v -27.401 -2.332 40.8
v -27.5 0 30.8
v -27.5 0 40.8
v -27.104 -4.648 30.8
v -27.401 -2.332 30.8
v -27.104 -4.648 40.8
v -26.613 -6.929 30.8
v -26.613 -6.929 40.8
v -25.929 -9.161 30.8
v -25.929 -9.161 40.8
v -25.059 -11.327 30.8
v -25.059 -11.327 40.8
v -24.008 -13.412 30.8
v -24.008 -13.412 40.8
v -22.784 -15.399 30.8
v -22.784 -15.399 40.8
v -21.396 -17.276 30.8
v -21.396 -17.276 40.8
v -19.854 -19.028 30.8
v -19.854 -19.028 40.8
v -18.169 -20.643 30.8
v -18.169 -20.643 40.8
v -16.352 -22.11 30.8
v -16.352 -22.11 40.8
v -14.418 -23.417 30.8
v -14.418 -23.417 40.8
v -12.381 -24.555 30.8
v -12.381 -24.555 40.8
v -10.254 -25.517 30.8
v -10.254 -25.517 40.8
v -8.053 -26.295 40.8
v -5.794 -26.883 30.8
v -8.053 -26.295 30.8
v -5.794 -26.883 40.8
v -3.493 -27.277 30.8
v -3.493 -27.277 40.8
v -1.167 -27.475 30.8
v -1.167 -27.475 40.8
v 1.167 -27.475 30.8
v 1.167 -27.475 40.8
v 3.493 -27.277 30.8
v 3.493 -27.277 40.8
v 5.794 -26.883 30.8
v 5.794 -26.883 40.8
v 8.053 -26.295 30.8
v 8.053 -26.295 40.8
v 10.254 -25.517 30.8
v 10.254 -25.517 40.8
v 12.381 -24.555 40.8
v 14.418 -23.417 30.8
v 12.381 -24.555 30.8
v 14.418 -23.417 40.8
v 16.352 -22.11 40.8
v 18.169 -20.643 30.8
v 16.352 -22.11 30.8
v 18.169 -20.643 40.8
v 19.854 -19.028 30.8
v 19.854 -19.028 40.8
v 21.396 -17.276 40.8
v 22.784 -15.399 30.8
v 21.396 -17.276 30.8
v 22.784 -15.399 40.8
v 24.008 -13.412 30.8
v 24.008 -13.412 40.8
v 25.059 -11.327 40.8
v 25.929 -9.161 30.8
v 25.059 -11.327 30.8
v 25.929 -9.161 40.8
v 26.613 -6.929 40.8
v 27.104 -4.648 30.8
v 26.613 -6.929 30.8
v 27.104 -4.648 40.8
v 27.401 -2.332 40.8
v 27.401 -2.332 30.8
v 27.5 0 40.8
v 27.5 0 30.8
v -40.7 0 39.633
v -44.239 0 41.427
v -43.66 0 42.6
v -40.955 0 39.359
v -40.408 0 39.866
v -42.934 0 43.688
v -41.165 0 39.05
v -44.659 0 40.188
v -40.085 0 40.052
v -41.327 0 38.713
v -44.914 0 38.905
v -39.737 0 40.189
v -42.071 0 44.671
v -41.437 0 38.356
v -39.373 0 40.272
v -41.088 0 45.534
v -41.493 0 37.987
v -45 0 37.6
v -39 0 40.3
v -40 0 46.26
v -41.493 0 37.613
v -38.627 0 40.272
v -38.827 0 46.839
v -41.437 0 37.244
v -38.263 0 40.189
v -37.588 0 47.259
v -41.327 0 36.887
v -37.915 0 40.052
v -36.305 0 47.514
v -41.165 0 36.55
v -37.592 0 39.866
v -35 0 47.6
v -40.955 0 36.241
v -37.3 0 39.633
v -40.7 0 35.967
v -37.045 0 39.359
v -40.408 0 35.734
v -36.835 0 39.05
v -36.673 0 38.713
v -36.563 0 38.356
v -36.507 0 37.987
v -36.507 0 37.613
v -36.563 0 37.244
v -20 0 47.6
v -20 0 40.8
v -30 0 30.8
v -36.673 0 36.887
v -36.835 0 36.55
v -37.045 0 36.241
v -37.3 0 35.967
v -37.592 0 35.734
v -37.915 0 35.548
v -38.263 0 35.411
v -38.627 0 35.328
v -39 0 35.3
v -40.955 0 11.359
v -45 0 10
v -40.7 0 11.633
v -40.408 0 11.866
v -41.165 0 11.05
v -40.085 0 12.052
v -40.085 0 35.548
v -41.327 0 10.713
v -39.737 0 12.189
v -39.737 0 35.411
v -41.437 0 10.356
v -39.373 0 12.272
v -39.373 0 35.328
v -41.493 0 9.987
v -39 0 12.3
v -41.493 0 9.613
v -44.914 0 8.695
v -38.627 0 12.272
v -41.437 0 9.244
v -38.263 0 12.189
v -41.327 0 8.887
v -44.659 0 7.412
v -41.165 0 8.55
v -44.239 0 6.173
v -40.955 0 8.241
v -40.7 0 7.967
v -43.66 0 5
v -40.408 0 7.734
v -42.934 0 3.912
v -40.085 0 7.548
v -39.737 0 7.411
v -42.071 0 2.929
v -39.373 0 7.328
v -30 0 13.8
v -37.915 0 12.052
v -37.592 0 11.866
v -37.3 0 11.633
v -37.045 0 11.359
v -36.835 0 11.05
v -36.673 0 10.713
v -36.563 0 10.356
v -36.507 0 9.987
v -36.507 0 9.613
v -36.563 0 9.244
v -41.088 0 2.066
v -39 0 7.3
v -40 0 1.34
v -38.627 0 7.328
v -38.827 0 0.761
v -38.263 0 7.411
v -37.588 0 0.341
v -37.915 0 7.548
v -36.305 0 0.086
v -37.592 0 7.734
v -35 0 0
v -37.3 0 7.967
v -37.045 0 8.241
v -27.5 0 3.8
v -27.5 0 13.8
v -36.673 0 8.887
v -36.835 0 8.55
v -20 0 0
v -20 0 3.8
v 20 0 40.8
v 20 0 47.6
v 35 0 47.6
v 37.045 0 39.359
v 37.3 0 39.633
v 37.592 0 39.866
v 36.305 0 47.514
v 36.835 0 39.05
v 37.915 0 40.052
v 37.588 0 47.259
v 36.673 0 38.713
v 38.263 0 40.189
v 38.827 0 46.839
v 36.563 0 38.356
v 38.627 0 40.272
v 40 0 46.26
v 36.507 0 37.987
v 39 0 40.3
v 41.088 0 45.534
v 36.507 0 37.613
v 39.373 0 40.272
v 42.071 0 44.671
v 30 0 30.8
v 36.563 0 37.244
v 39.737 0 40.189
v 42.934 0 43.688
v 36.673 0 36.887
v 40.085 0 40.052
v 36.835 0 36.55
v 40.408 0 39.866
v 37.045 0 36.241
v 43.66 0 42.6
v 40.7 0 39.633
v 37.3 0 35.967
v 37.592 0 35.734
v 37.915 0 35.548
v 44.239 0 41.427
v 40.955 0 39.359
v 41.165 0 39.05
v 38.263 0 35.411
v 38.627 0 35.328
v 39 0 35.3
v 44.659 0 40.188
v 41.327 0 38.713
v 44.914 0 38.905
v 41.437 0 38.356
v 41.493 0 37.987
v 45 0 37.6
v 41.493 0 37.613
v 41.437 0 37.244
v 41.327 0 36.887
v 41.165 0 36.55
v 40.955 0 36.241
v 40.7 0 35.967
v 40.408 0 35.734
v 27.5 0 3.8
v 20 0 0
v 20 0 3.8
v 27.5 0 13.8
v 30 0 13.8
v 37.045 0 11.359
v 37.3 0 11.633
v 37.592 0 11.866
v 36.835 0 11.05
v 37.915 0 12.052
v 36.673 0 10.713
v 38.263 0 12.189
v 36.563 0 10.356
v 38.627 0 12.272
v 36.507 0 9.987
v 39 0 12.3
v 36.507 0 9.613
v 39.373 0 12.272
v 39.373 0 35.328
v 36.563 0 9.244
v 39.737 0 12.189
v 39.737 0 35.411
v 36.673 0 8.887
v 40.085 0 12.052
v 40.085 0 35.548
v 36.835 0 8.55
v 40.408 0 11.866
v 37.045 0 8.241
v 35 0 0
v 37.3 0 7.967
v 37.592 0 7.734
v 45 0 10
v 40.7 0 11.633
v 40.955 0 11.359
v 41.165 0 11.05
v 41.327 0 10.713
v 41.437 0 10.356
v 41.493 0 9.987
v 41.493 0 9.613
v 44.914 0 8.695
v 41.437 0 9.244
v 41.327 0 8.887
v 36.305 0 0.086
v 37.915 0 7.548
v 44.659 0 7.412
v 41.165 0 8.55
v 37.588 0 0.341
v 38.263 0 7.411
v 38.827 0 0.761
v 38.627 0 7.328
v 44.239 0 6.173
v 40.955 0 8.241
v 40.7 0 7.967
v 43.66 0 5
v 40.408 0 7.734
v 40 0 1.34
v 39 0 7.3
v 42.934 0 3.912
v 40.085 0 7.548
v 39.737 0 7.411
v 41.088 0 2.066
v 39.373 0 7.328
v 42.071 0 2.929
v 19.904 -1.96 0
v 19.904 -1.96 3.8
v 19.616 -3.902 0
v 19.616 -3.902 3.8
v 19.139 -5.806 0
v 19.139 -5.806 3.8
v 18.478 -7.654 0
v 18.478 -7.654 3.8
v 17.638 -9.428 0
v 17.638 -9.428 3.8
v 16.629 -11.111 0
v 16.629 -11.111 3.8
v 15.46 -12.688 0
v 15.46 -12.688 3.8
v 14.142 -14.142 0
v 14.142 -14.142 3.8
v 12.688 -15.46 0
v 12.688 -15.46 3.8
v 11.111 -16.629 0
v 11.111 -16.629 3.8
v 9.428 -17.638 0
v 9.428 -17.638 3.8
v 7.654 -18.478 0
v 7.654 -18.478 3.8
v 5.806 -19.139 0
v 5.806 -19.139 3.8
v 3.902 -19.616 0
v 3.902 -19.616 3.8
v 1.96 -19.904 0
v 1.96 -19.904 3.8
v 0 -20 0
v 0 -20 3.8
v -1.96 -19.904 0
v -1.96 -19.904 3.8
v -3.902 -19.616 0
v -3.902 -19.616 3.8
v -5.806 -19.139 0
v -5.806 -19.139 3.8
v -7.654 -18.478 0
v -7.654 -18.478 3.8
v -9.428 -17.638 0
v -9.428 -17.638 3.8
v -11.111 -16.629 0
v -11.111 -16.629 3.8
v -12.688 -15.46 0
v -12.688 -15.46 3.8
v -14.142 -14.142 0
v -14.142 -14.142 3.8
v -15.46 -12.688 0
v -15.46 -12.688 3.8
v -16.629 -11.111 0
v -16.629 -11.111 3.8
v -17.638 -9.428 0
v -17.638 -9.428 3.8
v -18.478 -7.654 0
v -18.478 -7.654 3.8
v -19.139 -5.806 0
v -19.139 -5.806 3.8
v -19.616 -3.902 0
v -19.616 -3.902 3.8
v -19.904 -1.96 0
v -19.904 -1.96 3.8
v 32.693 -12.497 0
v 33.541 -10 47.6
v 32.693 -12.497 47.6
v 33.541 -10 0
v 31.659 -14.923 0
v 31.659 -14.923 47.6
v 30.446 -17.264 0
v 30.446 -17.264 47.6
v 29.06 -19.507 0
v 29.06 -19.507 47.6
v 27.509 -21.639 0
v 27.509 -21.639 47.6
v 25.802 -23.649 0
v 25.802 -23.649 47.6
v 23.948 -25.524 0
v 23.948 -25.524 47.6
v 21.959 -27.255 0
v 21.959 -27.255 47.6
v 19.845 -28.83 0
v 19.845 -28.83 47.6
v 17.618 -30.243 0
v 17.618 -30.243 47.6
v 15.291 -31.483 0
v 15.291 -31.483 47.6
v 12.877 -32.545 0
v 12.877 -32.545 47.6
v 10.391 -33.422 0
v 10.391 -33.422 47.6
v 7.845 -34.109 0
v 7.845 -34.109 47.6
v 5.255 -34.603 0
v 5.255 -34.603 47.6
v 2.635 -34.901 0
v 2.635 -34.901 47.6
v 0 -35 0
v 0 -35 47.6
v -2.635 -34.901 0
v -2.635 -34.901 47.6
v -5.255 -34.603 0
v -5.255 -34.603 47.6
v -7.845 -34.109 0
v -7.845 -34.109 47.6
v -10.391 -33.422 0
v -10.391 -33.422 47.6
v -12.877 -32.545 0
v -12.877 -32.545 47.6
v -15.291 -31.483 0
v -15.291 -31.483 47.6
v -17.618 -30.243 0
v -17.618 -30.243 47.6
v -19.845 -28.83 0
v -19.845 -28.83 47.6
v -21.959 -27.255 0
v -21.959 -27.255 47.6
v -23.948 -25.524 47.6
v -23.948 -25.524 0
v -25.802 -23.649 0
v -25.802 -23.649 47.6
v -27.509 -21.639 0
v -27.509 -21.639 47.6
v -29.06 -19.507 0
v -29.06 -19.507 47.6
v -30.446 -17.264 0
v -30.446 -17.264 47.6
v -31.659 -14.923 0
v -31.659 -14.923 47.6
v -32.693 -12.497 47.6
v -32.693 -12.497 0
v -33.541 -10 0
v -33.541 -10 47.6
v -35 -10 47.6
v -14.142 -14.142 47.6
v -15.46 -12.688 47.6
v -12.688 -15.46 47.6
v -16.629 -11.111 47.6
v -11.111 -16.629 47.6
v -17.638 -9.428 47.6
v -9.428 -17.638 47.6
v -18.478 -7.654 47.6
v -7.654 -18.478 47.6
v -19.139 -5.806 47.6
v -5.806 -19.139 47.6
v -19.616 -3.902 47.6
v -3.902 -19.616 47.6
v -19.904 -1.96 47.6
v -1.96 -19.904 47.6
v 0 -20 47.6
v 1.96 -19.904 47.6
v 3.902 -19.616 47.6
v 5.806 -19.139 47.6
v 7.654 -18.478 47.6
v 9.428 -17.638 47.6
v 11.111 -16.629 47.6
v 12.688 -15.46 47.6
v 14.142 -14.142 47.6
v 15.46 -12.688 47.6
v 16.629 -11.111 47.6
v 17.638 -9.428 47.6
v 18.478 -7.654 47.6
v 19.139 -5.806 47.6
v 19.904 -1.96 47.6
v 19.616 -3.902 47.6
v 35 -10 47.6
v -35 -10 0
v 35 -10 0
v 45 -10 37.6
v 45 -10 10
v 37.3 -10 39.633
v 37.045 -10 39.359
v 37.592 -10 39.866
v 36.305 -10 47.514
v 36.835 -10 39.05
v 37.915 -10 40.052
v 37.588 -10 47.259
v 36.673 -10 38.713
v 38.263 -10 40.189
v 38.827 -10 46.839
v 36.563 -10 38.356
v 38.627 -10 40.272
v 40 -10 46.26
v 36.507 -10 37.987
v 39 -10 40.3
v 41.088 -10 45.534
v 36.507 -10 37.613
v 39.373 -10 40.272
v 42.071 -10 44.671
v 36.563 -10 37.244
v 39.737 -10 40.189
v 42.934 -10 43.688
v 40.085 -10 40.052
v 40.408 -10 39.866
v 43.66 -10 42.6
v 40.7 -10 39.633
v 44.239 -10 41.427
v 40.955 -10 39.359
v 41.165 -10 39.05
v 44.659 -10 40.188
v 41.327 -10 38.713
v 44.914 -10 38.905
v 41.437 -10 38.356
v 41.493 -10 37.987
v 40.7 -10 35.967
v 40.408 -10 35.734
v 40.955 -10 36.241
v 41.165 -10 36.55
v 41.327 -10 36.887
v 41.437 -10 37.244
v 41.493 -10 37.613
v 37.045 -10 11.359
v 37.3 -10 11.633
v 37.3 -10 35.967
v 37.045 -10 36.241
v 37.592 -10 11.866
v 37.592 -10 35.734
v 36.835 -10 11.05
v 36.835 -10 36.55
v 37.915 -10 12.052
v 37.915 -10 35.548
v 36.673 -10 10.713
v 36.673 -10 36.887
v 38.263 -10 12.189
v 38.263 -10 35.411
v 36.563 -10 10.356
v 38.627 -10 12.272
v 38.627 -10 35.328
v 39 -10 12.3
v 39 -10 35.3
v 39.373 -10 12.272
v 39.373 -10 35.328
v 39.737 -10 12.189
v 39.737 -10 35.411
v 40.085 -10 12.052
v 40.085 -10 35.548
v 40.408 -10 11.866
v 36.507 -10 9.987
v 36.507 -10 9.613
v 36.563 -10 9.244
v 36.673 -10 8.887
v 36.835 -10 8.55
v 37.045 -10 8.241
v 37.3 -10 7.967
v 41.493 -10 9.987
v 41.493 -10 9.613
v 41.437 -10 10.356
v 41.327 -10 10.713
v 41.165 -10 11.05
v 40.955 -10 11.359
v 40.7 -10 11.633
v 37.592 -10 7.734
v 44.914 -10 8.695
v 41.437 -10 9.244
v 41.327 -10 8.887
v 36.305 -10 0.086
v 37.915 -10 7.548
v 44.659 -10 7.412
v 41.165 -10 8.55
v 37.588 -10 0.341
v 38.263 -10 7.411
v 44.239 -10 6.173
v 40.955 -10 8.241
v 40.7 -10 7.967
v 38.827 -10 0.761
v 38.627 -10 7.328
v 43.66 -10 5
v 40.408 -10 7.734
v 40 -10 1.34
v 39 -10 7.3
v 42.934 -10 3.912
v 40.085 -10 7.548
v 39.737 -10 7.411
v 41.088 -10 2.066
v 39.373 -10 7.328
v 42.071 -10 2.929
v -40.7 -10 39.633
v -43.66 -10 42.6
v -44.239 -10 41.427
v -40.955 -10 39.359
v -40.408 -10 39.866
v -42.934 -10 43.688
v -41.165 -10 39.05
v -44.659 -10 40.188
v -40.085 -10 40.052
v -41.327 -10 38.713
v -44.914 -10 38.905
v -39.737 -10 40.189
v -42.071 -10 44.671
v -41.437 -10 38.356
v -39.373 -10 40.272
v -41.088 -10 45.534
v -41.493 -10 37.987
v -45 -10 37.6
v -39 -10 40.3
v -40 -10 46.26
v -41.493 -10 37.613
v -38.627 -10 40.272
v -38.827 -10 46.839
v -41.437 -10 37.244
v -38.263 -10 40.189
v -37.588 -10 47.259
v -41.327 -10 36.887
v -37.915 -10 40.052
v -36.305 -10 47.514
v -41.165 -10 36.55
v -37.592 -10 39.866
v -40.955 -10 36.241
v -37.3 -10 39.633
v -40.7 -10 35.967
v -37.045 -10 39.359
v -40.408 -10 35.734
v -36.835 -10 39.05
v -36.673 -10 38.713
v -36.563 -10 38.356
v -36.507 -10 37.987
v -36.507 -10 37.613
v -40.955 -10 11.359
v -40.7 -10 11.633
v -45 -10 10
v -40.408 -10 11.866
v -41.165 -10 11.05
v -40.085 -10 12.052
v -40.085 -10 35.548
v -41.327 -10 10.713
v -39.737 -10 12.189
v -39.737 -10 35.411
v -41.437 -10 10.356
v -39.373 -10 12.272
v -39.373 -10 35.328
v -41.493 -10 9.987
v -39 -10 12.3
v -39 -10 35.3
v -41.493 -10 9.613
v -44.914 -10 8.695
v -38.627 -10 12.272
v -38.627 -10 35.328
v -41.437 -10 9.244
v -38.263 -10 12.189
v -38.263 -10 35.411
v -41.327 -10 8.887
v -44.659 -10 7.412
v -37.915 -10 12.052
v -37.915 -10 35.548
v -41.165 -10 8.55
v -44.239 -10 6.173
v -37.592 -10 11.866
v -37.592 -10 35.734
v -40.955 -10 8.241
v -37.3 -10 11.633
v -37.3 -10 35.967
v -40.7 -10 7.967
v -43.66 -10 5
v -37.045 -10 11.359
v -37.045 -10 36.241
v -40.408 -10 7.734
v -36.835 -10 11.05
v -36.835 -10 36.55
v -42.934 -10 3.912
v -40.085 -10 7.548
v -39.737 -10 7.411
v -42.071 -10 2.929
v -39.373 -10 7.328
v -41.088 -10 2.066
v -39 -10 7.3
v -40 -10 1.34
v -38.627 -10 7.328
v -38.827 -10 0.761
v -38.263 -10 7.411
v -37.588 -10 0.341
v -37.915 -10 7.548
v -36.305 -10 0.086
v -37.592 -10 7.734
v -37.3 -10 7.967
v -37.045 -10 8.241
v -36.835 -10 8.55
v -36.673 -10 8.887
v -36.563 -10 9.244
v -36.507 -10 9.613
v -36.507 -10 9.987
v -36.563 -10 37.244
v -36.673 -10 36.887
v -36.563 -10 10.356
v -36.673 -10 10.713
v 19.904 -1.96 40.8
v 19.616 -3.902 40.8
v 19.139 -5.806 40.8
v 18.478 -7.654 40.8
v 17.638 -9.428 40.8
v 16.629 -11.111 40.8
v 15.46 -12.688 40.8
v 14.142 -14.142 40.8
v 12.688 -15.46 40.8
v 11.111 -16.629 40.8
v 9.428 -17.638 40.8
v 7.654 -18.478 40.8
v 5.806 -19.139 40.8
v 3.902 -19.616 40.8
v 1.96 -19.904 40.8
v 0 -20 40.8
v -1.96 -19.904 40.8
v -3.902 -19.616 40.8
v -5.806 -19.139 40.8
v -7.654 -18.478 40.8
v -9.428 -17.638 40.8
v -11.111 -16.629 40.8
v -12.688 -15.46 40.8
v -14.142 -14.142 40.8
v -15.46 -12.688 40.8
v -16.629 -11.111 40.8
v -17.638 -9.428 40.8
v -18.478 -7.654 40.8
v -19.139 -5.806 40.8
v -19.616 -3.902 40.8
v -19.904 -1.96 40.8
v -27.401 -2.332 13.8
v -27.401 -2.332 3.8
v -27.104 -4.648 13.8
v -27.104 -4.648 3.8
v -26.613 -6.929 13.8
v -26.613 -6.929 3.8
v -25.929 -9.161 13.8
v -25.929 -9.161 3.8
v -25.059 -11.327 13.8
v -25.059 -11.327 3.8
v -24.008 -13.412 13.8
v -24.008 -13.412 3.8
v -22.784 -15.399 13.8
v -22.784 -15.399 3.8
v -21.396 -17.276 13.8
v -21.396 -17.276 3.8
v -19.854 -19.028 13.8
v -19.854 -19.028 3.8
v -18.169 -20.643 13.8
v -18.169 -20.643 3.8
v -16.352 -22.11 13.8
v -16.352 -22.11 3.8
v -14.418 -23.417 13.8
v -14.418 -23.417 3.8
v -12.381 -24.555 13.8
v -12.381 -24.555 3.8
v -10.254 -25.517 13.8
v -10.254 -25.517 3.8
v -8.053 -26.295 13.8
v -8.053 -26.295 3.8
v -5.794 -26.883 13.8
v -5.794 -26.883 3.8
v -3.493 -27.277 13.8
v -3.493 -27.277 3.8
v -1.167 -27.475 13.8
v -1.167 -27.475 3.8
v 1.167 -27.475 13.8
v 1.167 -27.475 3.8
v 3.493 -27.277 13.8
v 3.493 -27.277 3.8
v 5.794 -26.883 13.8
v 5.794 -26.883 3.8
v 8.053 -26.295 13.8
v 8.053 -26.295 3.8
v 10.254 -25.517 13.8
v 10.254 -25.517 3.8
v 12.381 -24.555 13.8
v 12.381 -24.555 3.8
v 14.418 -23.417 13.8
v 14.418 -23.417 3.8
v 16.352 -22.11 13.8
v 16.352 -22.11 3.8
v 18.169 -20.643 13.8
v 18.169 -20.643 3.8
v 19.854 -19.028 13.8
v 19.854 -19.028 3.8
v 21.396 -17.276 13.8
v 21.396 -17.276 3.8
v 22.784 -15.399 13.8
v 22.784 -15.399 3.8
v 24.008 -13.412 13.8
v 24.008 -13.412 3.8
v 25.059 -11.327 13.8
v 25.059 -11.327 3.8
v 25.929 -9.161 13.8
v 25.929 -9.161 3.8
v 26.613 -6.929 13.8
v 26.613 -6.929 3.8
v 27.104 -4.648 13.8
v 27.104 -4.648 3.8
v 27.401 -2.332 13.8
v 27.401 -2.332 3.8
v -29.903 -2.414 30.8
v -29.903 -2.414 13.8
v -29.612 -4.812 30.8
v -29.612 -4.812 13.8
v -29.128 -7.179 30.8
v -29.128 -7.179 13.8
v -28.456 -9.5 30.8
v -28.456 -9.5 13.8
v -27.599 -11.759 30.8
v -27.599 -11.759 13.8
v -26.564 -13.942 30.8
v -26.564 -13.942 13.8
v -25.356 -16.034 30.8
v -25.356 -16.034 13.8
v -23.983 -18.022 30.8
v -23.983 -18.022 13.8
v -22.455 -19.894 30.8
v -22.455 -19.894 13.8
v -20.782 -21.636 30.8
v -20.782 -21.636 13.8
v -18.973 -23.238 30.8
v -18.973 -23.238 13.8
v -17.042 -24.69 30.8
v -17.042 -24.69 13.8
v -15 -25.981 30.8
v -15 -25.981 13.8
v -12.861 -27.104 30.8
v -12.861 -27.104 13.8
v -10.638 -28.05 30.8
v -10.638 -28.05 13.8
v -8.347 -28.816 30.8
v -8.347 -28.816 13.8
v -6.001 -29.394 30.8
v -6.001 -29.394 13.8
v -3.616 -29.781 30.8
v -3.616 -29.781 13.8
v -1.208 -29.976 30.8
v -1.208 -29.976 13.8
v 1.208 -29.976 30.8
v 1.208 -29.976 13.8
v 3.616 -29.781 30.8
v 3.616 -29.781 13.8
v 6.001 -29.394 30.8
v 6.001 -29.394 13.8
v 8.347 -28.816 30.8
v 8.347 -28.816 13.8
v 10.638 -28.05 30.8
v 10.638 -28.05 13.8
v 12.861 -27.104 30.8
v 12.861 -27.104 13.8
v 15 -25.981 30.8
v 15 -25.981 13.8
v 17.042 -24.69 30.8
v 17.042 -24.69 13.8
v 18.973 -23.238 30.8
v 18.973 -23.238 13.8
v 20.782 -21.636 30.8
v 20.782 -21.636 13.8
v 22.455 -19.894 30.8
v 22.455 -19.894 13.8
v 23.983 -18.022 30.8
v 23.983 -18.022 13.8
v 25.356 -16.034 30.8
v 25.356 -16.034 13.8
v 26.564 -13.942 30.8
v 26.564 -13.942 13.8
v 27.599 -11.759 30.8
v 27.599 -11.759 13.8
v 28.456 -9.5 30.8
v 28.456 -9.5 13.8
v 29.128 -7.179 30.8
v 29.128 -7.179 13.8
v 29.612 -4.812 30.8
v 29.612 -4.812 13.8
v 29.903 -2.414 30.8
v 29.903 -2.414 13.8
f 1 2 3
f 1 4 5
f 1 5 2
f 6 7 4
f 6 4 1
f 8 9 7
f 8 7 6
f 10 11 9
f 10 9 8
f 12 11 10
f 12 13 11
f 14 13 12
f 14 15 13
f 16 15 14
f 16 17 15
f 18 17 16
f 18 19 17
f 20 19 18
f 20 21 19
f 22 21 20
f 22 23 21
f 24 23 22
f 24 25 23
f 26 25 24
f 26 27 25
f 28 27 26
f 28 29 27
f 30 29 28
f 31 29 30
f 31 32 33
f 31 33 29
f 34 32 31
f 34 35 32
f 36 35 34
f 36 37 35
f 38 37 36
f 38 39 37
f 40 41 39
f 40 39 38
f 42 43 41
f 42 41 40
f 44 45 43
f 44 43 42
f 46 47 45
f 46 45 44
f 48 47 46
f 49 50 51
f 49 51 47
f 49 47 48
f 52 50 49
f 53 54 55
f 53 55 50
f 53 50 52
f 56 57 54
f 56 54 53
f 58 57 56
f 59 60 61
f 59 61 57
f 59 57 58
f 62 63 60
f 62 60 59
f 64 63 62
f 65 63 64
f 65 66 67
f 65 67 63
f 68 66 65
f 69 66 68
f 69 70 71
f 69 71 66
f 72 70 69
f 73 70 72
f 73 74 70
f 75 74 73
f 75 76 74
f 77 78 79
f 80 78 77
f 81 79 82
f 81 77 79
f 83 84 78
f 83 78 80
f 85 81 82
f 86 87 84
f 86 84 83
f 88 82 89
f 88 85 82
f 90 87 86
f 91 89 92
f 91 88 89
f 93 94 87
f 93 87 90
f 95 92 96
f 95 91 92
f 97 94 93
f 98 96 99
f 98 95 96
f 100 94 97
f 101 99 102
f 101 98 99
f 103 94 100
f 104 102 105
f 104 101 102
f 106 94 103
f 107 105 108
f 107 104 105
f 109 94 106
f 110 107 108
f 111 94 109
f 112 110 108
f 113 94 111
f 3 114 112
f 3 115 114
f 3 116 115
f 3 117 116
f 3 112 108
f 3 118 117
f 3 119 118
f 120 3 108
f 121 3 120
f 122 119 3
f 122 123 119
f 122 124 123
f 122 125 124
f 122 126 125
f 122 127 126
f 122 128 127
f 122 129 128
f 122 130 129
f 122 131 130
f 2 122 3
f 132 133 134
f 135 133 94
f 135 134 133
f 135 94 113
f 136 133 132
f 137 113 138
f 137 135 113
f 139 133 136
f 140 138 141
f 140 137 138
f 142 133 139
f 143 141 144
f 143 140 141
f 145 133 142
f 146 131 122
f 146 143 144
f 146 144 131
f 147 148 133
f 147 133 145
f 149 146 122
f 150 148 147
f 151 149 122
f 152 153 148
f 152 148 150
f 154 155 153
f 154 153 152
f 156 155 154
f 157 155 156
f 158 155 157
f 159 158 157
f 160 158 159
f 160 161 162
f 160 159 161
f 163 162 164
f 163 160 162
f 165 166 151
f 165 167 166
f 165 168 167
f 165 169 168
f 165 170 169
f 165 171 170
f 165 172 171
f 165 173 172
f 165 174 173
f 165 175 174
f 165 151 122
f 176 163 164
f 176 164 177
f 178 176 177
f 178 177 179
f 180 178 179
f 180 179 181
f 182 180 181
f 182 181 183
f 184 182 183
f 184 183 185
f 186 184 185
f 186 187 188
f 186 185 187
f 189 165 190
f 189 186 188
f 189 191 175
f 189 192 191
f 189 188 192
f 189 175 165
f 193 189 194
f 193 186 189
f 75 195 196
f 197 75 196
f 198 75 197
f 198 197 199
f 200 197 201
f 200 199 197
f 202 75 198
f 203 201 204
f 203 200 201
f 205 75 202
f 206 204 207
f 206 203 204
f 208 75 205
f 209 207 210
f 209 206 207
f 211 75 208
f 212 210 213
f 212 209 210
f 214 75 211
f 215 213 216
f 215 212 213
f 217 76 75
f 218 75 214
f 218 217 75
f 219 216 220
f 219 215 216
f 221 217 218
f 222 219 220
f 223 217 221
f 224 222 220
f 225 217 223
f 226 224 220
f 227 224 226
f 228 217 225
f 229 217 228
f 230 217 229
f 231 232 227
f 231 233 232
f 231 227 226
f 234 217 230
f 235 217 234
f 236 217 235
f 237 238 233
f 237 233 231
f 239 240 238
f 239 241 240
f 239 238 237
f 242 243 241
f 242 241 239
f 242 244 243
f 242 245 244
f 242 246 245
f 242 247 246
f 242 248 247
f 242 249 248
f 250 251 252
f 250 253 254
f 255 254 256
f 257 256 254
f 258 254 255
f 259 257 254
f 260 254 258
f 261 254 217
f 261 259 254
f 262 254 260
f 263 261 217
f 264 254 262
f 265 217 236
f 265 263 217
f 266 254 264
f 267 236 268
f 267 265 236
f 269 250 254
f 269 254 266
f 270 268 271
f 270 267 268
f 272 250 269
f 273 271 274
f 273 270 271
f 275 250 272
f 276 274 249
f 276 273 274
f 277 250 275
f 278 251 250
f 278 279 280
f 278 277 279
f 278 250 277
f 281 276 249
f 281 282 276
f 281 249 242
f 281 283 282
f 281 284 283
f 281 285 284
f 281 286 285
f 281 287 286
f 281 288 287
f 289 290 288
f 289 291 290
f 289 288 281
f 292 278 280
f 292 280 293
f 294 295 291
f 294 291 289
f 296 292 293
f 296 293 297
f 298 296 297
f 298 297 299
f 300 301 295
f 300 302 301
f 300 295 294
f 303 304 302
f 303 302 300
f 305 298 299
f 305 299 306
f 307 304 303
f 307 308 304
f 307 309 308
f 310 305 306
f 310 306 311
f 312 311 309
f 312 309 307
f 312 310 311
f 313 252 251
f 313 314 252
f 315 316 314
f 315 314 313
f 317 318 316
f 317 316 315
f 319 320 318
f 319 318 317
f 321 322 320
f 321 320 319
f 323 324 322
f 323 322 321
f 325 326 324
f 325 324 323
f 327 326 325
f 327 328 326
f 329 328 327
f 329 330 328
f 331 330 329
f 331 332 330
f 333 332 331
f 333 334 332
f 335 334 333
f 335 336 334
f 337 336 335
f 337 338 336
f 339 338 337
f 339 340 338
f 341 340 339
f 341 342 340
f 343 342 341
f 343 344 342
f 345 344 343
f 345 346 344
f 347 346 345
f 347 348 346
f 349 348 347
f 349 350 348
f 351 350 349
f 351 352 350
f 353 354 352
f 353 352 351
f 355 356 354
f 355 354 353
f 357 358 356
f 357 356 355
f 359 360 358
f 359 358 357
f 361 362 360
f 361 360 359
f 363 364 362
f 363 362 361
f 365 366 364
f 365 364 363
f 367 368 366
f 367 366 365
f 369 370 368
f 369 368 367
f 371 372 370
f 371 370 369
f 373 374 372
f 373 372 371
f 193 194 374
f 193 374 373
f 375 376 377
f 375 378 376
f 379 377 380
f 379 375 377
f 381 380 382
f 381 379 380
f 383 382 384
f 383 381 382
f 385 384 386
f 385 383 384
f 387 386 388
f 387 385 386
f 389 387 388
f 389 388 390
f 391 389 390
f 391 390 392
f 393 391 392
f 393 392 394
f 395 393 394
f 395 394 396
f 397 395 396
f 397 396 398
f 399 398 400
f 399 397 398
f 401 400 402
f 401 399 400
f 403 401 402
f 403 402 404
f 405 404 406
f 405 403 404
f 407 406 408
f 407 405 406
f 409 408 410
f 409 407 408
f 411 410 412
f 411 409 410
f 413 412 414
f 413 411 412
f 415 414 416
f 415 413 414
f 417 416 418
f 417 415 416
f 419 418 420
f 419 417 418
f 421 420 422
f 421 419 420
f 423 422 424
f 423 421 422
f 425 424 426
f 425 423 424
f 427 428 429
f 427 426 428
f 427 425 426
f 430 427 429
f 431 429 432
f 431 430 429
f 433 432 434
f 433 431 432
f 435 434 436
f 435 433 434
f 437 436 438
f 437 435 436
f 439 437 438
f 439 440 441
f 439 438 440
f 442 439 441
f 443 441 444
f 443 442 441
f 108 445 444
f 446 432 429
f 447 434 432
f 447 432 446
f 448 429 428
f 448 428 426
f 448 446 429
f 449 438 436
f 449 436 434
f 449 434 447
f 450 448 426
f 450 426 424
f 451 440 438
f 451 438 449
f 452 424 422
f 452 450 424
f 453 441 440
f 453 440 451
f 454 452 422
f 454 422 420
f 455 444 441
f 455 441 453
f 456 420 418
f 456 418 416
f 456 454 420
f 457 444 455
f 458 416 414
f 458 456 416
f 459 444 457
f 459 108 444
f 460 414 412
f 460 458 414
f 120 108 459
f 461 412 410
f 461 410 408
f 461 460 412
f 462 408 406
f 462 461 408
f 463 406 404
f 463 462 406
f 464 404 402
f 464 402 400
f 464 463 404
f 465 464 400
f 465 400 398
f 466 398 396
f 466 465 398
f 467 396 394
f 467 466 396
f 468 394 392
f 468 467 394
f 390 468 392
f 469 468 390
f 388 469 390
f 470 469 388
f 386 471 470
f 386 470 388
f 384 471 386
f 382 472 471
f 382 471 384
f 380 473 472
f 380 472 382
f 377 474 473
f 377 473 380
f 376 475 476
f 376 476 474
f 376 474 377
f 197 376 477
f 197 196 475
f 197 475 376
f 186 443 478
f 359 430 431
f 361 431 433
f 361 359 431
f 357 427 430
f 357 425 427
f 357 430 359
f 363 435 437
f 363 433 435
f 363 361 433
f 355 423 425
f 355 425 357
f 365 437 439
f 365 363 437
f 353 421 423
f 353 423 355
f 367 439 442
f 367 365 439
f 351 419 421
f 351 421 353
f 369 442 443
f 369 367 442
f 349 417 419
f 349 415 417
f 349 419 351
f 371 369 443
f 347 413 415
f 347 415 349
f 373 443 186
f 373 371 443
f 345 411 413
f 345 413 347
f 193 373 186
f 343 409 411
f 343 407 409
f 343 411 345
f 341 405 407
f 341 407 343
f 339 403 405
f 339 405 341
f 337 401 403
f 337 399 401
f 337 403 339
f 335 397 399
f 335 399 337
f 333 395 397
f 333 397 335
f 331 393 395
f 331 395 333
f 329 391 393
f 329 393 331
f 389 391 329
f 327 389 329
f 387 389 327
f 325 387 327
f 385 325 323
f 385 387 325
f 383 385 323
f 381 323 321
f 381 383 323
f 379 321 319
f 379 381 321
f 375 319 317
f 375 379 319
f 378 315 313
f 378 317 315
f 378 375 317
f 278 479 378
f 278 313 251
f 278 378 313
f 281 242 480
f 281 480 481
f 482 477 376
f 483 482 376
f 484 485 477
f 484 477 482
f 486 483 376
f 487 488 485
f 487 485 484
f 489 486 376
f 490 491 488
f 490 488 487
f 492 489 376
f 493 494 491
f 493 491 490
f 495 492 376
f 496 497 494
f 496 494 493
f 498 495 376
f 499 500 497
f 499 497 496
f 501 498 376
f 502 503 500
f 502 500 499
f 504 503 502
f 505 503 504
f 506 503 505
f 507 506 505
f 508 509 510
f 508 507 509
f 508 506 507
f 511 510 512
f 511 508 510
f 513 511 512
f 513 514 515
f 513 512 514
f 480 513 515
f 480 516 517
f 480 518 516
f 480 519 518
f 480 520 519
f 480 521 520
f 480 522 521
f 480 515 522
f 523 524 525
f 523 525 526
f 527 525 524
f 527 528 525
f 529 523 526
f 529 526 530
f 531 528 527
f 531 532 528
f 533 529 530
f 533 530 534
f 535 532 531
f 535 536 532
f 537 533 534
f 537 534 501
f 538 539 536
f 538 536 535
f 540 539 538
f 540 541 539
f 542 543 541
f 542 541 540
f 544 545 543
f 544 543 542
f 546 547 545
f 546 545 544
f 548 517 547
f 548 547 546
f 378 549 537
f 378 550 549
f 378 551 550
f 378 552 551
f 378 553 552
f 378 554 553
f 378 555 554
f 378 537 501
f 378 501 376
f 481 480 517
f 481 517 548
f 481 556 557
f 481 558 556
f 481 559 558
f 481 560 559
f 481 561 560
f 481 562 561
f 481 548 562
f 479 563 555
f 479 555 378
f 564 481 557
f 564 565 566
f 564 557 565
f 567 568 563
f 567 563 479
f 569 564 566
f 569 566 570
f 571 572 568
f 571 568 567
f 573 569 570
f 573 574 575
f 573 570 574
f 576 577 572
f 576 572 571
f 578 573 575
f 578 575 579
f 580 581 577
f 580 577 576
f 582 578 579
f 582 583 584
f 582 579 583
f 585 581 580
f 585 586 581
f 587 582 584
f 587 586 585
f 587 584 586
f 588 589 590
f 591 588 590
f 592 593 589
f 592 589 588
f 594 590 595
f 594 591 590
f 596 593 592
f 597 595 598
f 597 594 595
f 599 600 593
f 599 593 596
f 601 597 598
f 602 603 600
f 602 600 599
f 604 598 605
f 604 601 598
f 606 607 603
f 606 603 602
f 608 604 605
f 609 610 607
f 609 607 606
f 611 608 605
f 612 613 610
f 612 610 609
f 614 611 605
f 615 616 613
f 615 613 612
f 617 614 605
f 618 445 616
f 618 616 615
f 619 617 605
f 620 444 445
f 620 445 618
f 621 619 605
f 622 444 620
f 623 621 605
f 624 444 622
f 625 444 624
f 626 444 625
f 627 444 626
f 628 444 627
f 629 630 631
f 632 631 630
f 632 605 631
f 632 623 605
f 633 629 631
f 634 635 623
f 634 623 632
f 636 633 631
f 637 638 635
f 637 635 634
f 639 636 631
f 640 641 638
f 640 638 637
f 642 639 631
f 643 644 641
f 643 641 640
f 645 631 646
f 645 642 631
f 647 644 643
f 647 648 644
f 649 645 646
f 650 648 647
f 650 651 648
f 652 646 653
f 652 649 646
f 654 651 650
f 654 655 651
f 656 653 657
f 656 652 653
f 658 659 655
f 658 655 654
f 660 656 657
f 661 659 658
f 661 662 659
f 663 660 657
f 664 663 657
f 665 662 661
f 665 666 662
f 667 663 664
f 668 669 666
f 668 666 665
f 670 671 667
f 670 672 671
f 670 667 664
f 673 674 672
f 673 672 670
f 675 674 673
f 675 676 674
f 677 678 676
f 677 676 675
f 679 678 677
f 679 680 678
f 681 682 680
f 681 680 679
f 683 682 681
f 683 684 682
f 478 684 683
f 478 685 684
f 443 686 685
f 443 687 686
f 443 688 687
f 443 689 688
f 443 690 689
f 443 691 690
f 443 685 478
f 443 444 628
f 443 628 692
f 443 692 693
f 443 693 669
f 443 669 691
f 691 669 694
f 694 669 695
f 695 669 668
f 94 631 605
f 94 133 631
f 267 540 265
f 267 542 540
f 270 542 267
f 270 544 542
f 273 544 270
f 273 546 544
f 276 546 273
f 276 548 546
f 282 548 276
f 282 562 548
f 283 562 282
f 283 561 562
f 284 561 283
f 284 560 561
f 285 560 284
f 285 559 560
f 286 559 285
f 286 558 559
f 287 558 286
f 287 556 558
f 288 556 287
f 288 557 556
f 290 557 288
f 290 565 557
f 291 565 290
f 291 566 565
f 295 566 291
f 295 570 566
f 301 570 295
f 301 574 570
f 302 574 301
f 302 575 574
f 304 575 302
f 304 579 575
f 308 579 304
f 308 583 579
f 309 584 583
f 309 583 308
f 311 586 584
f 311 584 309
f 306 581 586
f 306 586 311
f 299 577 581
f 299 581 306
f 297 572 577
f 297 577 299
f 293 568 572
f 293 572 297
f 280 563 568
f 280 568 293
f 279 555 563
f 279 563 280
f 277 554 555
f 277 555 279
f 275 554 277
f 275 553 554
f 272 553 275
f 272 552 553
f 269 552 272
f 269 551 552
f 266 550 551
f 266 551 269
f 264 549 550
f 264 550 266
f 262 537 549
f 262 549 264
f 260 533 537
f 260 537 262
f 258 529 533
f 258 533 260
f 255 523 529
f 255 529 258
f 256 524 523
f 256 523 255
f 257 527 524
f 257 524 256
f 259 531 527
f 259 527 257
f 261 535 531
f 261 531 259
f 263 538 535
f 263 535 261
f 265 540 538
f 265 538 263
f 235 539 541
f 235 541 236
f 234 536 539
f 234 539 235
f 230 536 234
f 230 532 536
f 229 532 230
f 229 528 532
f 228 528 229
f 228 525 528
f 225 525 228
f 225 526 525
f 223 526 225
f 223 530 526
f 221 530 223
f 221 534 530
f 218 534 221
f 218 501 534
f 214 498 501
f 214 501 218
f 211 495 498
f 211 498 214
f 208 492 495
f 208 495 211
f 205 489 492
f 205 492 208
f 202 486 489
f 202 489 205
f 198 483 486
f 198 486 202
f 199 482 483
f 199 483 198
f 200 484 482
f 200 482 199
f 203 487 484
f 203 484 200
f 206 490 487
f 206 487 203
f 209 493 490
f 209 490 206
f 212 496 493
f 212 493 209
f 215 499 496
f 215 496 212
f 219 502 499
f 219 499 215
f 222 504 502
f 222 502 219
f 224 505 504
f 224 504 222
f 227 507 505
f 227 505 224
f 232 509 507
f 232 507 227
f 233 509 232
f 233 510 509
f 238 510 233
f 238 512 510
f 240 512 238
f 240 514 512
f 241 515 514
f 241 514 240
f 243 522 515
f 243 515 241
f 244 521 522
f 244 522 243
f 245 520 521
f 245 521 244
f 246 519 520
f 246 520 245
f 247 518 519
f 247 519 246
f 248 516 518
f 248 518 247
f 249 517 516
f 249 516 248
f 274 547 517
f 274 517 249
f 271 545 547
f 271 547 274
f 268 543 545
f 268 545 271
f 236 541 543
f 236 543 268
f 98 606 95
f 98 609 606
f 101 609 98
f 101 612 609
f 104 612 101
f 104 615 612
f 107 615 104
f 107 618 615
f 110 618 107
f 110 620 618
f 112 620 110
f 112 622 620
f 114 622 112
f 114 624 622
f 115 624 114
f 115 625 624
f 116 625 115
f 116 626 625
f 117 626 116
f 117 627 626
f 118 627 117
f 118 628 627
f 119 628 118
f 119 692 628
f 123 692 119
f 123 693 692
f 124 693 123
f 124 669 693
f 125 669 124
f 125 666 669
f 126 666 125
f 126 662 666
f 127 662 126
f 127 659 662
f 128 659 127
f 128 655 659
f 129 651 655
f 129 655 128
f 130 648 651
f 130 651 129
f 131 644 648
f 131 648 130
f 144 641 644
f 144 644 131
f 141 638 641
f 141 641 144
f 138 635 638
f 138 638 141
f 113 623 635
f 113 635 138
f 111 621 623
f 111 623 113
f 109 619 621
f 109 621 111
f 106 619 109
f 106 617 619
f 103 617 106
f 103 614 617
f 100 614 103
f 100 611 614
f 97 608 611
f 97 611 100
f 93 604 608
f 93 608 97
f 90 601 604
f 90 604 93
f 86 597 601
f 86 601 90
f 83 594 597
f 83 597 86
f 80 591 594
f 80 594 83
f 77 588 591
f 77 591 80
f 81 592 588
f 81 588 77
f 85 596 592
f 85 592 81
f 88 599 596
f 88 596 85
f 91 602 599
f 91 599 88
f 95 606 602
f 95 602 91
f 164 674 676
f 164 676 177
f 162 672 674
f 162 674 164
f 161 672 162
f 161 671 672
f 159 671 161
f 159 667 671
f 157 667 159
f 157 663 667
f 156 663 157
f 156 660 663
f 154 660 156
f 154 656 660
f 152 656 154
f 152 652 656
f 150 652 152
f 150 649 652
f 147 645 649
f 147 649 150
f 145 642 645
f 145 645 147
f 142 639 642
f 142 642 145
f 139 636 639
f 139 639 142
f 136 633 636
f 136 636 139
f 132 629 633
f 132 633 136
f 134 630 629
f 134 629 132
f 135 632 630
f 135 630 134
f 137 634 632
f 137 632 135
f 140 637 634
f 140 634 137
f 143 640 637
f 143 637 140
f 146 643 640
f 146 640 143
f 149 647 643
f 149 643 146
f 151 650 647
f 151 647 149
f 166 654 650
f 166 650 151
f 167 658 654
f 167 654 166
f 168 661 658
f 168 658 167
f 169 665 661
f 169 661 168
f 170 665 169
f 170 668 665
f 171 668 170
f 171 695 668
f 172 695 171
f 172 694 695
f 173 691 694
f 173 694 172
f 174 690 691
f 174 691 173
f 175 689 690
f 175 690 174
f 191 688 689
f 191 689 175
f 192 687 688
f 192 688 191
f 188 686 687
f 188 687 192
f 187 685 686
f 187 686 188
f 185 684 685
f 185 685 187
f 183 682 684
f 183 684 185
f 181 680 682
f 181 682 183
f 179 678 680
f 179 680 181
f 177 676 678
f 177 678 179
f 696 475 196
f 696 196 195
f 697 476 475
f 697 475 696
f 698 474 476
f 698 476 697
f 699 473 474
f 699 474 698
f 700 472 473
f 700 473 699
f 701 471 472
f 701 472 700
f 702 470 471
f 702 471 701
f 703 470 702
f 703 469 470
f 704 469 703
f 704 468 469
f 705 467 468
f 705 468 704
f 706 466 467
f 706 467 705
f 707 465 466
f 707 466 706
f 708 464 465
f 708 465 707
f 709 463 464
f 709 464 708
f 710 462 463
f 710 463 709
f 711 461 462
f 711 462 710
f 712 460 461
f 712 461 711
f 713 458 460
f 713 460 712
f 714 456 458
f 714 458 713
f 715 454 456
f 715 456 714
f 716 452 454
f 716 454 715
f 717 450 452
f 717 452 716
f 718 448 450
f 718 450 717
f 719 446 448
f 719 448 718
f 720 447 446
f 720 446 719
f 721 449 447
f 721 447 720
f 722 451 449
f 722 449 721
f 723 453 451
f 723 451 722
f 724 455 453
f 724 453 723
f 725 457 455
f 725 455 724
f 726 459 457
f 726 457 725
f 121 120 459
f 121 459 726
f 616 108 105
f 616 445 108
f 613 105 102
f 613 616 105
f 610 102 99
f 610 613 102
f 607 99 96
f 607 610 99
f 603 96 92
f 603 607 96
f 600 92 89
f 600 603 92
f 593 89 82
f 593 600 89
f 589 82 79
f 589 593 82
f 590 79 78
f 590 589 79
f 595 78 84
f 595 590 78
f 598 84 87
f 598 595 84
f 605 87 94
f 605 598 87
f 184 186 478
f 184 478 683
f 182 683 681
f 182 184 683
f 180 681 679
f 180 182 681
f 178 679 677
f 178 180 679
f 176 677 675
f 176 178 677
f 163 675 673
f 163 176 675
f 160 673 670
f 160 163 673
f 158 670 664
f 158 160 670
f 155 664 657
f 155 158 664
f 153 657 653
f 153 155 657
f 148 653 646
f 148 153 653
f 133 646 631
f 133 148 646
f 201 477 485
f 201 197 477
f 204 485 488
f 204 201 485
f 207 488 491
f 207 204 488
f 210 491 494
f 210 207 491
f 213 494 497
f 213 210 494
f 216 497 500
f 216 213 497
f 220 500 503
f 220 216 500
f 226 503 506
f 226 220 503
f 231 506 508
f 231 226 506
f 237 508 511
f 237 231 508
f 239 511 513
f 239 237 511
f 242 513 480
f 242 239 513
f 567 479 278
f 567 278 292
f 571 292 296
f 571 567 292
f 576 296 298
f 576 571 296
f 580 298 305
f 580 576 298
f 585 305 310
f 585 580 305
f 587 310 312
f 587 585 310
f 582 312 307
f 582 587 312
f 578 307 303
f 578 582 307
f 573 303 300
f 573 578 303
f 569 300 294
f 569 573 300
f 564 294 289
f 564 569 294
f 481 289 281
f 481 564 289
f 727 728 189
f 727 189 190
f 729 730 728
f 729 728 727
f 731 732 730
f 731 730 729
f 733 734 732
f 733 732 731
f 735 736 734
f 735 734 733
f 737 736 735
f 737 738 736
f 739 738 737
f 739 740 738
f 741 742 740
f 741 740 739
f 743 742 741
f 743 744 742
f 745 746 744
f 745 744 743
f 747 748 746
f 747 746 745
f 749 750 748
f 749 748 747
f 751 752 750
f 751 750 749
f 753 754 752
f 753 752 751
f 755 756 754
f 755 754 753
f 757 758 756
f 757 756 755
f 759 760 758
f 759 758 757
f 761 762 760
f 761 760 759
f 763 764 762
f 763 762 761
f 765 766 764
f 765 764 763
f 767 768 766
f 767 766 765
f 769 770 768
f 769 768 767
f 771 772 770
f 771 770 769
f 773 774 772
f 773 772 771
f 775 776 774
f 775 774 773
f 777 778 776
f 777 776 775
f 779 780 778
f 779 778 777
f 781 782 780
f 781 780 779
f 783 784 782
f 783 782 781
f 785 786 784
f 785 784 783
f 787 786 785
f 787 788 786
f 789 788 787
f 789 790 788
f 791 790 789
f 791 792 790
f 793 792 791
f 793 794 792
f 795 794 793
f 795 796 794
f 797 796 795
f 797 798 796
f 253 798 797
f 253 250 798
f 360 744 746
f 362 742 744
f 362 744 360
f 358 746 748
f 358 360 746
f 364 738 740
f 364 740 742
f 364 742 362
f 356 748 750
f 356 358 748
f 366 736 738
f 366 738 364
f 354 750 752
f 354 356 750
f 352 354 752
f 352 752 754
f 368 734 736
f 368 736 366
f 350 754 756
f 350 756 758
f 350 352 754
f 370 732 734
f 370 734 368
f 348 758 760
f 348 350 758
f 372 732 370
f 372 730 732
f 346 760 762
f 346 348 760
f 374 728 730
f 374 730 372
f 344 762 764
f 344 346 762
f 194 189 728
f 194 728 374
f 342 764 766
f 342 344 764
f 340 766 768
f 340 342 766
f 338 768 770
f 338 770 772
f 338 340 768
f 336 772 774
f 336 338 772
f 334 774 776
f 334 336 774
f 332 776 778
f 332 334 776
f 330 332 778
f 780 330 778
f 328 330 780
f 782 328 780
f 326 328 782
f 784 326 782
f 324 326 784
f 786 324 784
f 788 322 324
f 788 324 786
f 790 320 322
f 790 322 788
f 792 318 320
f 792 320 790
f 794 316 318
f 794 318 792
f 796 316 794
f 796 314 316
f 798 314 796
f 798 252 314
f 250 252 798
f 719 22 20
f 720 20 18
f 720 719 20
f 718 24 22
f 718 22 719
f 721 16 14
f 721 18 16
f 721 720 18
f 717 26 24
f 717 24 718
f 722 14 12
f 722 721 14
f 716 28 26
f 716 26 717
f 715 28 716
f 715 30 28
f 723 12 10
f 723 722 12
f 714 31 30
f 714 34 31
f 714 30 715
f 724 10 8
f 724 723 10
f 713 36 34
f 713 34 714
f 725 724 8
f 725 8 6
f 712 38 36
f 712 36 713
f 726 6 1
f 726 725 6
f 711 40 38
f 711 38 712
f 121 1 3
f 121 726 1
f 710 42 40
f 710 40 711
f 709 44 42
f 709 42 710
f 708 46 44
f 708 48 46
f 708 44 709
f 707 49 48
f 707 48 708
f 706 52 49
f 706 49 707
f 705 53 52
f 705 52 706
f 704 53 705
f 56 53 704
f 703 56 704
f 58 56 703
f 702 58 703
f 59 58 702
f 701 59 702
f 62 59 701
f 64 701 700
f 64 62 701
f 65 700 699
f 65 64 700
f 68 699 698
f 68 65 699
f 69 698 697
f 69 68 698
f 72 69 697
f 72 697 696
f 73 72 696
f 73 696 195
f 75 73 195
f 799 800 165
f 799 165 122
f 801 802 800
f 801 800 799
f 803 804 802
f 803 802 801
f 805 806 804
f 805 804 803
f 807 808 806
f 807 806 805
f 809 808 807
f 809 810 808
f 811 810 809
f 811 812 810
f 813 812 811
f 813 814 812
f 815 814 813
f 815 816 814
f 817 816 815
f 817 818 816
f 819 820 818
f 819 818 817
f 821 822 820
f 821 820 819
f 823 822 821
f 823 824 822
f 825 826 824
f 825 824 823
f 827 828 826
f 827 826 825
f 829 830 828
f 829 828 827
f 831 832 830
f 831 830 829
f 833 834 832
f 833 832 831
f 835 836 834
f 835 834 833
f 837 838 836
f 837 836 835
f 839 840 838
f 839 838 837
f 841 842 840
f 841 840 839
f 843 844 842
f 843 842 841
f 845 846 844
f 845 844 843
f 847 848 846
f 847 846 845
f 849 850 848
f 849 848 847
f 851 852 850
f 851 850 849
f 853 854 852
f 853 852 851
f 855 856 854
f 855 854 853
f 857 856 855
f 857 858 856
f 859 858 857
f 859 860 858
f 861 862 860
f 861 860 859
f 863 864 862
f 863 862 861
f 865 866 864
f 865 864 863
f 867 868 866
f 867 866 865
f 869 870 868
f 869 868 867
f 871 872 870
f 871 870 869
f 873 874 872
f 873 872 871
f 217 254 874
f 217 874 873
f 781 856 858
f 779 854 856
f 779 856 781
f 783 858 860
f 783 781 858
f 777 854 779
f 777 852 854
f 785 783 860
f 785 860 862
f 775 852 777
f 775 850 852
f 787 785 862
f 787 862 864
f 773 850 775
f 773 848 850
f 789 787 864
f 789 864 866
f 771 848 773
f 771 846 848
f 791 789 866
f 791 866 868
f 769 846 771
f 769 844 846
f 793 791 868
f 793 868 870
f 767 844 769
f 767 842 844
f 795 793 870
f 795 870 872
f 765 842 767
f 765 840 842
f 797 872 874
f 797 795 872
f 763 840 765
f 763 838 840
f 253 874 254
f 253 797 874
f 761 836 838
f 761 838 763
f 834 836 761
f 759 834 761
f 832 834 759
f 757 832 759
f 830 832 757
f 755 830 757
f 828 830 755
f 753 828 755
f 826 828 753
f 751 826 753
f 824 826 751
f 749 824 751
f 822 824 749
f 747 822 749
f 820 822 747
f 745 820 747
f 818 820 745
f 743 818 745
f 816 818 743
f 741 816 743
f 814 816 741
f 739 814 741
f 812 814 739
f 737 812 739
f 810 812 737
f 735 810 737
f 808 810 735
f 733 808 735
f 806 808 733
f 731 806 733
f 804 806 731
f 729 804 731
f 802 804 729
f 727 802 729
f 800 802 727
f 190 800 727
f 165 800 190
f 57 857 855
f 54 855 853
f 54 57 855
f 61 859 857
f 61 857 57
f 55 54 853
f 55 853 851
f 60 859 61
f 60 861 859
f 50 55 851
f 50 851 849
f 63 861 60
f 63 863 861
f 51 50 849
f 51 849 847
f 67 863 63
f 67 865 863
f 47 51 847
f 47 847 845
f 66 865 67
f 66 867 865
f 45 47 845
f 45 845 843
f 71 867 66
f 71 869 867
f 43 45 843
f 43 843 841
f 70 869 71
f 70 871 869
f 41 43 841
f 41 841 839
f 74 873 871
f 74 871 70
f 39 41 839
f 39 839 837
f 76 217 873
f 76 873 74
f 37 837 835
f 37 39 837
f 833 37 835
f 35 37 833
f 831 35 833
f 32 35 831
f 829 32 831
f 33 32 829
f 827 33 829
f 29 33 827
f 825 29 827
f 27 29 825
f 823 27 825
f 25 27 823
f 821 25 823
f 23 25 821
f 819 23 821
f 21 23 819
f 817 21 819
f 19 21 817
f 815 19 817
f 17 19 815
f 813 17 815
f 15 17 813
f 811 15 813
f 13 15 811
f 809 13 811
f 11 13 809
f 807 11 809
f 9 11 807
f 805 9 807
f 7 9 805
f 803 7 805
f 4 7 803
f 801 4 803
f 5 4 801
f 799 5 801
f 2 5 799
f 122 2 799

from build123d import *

# Parameters (mm, degrees)
CROQUIS1_R              = 35
SALIENTE_EXTRUIR1_DEPTH = 47.6
CROQUIS2_W              = 81.100238634
CROQUIS2_H              = 55.229590233
CORTAR_EXTRUIR1_DEPTH   = 69.671391423
CROQUIS3_W              = 90
CROQUIS3_H              = 10
SALIENTE_EXTRUIR2_DEPTH = 47.6
CROQUIS4_R              = 2.5
CORTAR_EXTRUIR2_DEPTH   = 75.268162762
CROQUIS5_R              = 20
CORTAR_EXTRUIR3_DEPTH   = 75.268162762
REDONDEO1_R             = 10
CORTAR_EXTRUIR4_START   = -6.8
CROQUIS6_R              = 27.5
CORTAR_EXTRUIR4_DEPTH   = 37
CORTAR_EXTRUIR5_START   = 10
CROQUIS7_R              = 30
CORTAR_EXTRUIR5_DEPTH   = 17


with BuildPart() as part:
    # Croquis1 → Saliente-Extruir1 (new body)
    with BuildSketch(Plane.XY):
        Circle(CROQUIS1_R)
    extrude(amount=SALIENTE_EXTRUIR1_DEPTH)

    # Croquis2 → Cortar-Extruir1 (cut, through all)
    with BuildSketch(Plane.XY.offset(47.6)):
        with Locations((5.550119317, 27.614795117)):
            Rectangle(CROQUIS2_W, CROQUIS2_H)
    extrude(amount=-CORTAR_EXTRUIR1_DEPTH, mode=Mode.SUBTRACT)

    # Croquis3 → Saliente-Extruir2 (add)
    with BuildSketch(Plane.XY.offset(47.6)):
        with Locations((0, -5)):
            Rectangle(CROQUIS3_W, CROQUIS3_H)
    extrude(amount=-SALIENTE_EXTRUIR2_DEPTH)

    # Croquis4 → Cortar-Extruir2 (cut, through all)
    with BuildSketch(Plane(origin=(0, 0, 0), x_dir=(1, 0, 0), z_dir=(0, 1, 0))):
        with Locations(Location((39, -9.8, 0), (0, 0, 270))):
            Circle(CROQUIS4_R)
        with Locations(Location((39, -37.8, 0), (0, 0, 90))):
            Circle(CROQUIS4_R)
        with Locations(Location((-39, -37.8, 0), (0, 0, 270))):
            Circle(CROQUIS4_R)
        with Locations(Location((-39, -9.8, 0), (0, 0, 90))):
            Circle(CROQUIS4_R)
    extrude(amount=-CORTAR_EXTRUIR2_DEPTH, mode=Mode.SUBTRACT)

    # Croquis5 → Cortar-Extruir3 (cut, through all)
    with BuildSketch(Plane(origin=(0, 0, 0), x_dir=(-1, 0, 0), z_dir=(0, 0, -1))):
        Circle(CROQUIS5_R)
    extrude(amount=-CORTAR_EXTRUIR3_DEPTH, mode=Mode.SUBTRACT)

    # Redondeo1
    redondeo1_edges = [part.edges().sort_by_distance(p)[0] for p in [
        (-45, -5, 47.6),
        (45, -5, 47.6),
        (-45, -5, 0),
        (45, -5, 0),
    ]]
    fillet(redondeo1_edges, radius=REDONDEO1_R)

    # Croquis6 → Cortar-Extruir4 (cut)
    with BuildSketch(Plane.XY.offset(47.6).offset(CORTAR_EXTRUIR4_START)):
        Circle(CROQUIS6_R)
    extrude(amount=-CORTAR_EXTRUIR4_DEPTH, mode=Mode.SUBTRACT)

    # Croquis7 → Cortar-Extruir5 (cut)
    with BuildSketch(Plane(origin=(0, 0, 40.8), x_dir=(-1, 0, 0), z_dir=(0, 0, -1)).offset(CORTAR_EXTRUIR5_START)):
        Circle(CROQUIS7_R)
    extrude(amount=CORTAR_EXTRUIR5_DEPTH, mode=Mode.SUBTRACT)


solid = part.part
